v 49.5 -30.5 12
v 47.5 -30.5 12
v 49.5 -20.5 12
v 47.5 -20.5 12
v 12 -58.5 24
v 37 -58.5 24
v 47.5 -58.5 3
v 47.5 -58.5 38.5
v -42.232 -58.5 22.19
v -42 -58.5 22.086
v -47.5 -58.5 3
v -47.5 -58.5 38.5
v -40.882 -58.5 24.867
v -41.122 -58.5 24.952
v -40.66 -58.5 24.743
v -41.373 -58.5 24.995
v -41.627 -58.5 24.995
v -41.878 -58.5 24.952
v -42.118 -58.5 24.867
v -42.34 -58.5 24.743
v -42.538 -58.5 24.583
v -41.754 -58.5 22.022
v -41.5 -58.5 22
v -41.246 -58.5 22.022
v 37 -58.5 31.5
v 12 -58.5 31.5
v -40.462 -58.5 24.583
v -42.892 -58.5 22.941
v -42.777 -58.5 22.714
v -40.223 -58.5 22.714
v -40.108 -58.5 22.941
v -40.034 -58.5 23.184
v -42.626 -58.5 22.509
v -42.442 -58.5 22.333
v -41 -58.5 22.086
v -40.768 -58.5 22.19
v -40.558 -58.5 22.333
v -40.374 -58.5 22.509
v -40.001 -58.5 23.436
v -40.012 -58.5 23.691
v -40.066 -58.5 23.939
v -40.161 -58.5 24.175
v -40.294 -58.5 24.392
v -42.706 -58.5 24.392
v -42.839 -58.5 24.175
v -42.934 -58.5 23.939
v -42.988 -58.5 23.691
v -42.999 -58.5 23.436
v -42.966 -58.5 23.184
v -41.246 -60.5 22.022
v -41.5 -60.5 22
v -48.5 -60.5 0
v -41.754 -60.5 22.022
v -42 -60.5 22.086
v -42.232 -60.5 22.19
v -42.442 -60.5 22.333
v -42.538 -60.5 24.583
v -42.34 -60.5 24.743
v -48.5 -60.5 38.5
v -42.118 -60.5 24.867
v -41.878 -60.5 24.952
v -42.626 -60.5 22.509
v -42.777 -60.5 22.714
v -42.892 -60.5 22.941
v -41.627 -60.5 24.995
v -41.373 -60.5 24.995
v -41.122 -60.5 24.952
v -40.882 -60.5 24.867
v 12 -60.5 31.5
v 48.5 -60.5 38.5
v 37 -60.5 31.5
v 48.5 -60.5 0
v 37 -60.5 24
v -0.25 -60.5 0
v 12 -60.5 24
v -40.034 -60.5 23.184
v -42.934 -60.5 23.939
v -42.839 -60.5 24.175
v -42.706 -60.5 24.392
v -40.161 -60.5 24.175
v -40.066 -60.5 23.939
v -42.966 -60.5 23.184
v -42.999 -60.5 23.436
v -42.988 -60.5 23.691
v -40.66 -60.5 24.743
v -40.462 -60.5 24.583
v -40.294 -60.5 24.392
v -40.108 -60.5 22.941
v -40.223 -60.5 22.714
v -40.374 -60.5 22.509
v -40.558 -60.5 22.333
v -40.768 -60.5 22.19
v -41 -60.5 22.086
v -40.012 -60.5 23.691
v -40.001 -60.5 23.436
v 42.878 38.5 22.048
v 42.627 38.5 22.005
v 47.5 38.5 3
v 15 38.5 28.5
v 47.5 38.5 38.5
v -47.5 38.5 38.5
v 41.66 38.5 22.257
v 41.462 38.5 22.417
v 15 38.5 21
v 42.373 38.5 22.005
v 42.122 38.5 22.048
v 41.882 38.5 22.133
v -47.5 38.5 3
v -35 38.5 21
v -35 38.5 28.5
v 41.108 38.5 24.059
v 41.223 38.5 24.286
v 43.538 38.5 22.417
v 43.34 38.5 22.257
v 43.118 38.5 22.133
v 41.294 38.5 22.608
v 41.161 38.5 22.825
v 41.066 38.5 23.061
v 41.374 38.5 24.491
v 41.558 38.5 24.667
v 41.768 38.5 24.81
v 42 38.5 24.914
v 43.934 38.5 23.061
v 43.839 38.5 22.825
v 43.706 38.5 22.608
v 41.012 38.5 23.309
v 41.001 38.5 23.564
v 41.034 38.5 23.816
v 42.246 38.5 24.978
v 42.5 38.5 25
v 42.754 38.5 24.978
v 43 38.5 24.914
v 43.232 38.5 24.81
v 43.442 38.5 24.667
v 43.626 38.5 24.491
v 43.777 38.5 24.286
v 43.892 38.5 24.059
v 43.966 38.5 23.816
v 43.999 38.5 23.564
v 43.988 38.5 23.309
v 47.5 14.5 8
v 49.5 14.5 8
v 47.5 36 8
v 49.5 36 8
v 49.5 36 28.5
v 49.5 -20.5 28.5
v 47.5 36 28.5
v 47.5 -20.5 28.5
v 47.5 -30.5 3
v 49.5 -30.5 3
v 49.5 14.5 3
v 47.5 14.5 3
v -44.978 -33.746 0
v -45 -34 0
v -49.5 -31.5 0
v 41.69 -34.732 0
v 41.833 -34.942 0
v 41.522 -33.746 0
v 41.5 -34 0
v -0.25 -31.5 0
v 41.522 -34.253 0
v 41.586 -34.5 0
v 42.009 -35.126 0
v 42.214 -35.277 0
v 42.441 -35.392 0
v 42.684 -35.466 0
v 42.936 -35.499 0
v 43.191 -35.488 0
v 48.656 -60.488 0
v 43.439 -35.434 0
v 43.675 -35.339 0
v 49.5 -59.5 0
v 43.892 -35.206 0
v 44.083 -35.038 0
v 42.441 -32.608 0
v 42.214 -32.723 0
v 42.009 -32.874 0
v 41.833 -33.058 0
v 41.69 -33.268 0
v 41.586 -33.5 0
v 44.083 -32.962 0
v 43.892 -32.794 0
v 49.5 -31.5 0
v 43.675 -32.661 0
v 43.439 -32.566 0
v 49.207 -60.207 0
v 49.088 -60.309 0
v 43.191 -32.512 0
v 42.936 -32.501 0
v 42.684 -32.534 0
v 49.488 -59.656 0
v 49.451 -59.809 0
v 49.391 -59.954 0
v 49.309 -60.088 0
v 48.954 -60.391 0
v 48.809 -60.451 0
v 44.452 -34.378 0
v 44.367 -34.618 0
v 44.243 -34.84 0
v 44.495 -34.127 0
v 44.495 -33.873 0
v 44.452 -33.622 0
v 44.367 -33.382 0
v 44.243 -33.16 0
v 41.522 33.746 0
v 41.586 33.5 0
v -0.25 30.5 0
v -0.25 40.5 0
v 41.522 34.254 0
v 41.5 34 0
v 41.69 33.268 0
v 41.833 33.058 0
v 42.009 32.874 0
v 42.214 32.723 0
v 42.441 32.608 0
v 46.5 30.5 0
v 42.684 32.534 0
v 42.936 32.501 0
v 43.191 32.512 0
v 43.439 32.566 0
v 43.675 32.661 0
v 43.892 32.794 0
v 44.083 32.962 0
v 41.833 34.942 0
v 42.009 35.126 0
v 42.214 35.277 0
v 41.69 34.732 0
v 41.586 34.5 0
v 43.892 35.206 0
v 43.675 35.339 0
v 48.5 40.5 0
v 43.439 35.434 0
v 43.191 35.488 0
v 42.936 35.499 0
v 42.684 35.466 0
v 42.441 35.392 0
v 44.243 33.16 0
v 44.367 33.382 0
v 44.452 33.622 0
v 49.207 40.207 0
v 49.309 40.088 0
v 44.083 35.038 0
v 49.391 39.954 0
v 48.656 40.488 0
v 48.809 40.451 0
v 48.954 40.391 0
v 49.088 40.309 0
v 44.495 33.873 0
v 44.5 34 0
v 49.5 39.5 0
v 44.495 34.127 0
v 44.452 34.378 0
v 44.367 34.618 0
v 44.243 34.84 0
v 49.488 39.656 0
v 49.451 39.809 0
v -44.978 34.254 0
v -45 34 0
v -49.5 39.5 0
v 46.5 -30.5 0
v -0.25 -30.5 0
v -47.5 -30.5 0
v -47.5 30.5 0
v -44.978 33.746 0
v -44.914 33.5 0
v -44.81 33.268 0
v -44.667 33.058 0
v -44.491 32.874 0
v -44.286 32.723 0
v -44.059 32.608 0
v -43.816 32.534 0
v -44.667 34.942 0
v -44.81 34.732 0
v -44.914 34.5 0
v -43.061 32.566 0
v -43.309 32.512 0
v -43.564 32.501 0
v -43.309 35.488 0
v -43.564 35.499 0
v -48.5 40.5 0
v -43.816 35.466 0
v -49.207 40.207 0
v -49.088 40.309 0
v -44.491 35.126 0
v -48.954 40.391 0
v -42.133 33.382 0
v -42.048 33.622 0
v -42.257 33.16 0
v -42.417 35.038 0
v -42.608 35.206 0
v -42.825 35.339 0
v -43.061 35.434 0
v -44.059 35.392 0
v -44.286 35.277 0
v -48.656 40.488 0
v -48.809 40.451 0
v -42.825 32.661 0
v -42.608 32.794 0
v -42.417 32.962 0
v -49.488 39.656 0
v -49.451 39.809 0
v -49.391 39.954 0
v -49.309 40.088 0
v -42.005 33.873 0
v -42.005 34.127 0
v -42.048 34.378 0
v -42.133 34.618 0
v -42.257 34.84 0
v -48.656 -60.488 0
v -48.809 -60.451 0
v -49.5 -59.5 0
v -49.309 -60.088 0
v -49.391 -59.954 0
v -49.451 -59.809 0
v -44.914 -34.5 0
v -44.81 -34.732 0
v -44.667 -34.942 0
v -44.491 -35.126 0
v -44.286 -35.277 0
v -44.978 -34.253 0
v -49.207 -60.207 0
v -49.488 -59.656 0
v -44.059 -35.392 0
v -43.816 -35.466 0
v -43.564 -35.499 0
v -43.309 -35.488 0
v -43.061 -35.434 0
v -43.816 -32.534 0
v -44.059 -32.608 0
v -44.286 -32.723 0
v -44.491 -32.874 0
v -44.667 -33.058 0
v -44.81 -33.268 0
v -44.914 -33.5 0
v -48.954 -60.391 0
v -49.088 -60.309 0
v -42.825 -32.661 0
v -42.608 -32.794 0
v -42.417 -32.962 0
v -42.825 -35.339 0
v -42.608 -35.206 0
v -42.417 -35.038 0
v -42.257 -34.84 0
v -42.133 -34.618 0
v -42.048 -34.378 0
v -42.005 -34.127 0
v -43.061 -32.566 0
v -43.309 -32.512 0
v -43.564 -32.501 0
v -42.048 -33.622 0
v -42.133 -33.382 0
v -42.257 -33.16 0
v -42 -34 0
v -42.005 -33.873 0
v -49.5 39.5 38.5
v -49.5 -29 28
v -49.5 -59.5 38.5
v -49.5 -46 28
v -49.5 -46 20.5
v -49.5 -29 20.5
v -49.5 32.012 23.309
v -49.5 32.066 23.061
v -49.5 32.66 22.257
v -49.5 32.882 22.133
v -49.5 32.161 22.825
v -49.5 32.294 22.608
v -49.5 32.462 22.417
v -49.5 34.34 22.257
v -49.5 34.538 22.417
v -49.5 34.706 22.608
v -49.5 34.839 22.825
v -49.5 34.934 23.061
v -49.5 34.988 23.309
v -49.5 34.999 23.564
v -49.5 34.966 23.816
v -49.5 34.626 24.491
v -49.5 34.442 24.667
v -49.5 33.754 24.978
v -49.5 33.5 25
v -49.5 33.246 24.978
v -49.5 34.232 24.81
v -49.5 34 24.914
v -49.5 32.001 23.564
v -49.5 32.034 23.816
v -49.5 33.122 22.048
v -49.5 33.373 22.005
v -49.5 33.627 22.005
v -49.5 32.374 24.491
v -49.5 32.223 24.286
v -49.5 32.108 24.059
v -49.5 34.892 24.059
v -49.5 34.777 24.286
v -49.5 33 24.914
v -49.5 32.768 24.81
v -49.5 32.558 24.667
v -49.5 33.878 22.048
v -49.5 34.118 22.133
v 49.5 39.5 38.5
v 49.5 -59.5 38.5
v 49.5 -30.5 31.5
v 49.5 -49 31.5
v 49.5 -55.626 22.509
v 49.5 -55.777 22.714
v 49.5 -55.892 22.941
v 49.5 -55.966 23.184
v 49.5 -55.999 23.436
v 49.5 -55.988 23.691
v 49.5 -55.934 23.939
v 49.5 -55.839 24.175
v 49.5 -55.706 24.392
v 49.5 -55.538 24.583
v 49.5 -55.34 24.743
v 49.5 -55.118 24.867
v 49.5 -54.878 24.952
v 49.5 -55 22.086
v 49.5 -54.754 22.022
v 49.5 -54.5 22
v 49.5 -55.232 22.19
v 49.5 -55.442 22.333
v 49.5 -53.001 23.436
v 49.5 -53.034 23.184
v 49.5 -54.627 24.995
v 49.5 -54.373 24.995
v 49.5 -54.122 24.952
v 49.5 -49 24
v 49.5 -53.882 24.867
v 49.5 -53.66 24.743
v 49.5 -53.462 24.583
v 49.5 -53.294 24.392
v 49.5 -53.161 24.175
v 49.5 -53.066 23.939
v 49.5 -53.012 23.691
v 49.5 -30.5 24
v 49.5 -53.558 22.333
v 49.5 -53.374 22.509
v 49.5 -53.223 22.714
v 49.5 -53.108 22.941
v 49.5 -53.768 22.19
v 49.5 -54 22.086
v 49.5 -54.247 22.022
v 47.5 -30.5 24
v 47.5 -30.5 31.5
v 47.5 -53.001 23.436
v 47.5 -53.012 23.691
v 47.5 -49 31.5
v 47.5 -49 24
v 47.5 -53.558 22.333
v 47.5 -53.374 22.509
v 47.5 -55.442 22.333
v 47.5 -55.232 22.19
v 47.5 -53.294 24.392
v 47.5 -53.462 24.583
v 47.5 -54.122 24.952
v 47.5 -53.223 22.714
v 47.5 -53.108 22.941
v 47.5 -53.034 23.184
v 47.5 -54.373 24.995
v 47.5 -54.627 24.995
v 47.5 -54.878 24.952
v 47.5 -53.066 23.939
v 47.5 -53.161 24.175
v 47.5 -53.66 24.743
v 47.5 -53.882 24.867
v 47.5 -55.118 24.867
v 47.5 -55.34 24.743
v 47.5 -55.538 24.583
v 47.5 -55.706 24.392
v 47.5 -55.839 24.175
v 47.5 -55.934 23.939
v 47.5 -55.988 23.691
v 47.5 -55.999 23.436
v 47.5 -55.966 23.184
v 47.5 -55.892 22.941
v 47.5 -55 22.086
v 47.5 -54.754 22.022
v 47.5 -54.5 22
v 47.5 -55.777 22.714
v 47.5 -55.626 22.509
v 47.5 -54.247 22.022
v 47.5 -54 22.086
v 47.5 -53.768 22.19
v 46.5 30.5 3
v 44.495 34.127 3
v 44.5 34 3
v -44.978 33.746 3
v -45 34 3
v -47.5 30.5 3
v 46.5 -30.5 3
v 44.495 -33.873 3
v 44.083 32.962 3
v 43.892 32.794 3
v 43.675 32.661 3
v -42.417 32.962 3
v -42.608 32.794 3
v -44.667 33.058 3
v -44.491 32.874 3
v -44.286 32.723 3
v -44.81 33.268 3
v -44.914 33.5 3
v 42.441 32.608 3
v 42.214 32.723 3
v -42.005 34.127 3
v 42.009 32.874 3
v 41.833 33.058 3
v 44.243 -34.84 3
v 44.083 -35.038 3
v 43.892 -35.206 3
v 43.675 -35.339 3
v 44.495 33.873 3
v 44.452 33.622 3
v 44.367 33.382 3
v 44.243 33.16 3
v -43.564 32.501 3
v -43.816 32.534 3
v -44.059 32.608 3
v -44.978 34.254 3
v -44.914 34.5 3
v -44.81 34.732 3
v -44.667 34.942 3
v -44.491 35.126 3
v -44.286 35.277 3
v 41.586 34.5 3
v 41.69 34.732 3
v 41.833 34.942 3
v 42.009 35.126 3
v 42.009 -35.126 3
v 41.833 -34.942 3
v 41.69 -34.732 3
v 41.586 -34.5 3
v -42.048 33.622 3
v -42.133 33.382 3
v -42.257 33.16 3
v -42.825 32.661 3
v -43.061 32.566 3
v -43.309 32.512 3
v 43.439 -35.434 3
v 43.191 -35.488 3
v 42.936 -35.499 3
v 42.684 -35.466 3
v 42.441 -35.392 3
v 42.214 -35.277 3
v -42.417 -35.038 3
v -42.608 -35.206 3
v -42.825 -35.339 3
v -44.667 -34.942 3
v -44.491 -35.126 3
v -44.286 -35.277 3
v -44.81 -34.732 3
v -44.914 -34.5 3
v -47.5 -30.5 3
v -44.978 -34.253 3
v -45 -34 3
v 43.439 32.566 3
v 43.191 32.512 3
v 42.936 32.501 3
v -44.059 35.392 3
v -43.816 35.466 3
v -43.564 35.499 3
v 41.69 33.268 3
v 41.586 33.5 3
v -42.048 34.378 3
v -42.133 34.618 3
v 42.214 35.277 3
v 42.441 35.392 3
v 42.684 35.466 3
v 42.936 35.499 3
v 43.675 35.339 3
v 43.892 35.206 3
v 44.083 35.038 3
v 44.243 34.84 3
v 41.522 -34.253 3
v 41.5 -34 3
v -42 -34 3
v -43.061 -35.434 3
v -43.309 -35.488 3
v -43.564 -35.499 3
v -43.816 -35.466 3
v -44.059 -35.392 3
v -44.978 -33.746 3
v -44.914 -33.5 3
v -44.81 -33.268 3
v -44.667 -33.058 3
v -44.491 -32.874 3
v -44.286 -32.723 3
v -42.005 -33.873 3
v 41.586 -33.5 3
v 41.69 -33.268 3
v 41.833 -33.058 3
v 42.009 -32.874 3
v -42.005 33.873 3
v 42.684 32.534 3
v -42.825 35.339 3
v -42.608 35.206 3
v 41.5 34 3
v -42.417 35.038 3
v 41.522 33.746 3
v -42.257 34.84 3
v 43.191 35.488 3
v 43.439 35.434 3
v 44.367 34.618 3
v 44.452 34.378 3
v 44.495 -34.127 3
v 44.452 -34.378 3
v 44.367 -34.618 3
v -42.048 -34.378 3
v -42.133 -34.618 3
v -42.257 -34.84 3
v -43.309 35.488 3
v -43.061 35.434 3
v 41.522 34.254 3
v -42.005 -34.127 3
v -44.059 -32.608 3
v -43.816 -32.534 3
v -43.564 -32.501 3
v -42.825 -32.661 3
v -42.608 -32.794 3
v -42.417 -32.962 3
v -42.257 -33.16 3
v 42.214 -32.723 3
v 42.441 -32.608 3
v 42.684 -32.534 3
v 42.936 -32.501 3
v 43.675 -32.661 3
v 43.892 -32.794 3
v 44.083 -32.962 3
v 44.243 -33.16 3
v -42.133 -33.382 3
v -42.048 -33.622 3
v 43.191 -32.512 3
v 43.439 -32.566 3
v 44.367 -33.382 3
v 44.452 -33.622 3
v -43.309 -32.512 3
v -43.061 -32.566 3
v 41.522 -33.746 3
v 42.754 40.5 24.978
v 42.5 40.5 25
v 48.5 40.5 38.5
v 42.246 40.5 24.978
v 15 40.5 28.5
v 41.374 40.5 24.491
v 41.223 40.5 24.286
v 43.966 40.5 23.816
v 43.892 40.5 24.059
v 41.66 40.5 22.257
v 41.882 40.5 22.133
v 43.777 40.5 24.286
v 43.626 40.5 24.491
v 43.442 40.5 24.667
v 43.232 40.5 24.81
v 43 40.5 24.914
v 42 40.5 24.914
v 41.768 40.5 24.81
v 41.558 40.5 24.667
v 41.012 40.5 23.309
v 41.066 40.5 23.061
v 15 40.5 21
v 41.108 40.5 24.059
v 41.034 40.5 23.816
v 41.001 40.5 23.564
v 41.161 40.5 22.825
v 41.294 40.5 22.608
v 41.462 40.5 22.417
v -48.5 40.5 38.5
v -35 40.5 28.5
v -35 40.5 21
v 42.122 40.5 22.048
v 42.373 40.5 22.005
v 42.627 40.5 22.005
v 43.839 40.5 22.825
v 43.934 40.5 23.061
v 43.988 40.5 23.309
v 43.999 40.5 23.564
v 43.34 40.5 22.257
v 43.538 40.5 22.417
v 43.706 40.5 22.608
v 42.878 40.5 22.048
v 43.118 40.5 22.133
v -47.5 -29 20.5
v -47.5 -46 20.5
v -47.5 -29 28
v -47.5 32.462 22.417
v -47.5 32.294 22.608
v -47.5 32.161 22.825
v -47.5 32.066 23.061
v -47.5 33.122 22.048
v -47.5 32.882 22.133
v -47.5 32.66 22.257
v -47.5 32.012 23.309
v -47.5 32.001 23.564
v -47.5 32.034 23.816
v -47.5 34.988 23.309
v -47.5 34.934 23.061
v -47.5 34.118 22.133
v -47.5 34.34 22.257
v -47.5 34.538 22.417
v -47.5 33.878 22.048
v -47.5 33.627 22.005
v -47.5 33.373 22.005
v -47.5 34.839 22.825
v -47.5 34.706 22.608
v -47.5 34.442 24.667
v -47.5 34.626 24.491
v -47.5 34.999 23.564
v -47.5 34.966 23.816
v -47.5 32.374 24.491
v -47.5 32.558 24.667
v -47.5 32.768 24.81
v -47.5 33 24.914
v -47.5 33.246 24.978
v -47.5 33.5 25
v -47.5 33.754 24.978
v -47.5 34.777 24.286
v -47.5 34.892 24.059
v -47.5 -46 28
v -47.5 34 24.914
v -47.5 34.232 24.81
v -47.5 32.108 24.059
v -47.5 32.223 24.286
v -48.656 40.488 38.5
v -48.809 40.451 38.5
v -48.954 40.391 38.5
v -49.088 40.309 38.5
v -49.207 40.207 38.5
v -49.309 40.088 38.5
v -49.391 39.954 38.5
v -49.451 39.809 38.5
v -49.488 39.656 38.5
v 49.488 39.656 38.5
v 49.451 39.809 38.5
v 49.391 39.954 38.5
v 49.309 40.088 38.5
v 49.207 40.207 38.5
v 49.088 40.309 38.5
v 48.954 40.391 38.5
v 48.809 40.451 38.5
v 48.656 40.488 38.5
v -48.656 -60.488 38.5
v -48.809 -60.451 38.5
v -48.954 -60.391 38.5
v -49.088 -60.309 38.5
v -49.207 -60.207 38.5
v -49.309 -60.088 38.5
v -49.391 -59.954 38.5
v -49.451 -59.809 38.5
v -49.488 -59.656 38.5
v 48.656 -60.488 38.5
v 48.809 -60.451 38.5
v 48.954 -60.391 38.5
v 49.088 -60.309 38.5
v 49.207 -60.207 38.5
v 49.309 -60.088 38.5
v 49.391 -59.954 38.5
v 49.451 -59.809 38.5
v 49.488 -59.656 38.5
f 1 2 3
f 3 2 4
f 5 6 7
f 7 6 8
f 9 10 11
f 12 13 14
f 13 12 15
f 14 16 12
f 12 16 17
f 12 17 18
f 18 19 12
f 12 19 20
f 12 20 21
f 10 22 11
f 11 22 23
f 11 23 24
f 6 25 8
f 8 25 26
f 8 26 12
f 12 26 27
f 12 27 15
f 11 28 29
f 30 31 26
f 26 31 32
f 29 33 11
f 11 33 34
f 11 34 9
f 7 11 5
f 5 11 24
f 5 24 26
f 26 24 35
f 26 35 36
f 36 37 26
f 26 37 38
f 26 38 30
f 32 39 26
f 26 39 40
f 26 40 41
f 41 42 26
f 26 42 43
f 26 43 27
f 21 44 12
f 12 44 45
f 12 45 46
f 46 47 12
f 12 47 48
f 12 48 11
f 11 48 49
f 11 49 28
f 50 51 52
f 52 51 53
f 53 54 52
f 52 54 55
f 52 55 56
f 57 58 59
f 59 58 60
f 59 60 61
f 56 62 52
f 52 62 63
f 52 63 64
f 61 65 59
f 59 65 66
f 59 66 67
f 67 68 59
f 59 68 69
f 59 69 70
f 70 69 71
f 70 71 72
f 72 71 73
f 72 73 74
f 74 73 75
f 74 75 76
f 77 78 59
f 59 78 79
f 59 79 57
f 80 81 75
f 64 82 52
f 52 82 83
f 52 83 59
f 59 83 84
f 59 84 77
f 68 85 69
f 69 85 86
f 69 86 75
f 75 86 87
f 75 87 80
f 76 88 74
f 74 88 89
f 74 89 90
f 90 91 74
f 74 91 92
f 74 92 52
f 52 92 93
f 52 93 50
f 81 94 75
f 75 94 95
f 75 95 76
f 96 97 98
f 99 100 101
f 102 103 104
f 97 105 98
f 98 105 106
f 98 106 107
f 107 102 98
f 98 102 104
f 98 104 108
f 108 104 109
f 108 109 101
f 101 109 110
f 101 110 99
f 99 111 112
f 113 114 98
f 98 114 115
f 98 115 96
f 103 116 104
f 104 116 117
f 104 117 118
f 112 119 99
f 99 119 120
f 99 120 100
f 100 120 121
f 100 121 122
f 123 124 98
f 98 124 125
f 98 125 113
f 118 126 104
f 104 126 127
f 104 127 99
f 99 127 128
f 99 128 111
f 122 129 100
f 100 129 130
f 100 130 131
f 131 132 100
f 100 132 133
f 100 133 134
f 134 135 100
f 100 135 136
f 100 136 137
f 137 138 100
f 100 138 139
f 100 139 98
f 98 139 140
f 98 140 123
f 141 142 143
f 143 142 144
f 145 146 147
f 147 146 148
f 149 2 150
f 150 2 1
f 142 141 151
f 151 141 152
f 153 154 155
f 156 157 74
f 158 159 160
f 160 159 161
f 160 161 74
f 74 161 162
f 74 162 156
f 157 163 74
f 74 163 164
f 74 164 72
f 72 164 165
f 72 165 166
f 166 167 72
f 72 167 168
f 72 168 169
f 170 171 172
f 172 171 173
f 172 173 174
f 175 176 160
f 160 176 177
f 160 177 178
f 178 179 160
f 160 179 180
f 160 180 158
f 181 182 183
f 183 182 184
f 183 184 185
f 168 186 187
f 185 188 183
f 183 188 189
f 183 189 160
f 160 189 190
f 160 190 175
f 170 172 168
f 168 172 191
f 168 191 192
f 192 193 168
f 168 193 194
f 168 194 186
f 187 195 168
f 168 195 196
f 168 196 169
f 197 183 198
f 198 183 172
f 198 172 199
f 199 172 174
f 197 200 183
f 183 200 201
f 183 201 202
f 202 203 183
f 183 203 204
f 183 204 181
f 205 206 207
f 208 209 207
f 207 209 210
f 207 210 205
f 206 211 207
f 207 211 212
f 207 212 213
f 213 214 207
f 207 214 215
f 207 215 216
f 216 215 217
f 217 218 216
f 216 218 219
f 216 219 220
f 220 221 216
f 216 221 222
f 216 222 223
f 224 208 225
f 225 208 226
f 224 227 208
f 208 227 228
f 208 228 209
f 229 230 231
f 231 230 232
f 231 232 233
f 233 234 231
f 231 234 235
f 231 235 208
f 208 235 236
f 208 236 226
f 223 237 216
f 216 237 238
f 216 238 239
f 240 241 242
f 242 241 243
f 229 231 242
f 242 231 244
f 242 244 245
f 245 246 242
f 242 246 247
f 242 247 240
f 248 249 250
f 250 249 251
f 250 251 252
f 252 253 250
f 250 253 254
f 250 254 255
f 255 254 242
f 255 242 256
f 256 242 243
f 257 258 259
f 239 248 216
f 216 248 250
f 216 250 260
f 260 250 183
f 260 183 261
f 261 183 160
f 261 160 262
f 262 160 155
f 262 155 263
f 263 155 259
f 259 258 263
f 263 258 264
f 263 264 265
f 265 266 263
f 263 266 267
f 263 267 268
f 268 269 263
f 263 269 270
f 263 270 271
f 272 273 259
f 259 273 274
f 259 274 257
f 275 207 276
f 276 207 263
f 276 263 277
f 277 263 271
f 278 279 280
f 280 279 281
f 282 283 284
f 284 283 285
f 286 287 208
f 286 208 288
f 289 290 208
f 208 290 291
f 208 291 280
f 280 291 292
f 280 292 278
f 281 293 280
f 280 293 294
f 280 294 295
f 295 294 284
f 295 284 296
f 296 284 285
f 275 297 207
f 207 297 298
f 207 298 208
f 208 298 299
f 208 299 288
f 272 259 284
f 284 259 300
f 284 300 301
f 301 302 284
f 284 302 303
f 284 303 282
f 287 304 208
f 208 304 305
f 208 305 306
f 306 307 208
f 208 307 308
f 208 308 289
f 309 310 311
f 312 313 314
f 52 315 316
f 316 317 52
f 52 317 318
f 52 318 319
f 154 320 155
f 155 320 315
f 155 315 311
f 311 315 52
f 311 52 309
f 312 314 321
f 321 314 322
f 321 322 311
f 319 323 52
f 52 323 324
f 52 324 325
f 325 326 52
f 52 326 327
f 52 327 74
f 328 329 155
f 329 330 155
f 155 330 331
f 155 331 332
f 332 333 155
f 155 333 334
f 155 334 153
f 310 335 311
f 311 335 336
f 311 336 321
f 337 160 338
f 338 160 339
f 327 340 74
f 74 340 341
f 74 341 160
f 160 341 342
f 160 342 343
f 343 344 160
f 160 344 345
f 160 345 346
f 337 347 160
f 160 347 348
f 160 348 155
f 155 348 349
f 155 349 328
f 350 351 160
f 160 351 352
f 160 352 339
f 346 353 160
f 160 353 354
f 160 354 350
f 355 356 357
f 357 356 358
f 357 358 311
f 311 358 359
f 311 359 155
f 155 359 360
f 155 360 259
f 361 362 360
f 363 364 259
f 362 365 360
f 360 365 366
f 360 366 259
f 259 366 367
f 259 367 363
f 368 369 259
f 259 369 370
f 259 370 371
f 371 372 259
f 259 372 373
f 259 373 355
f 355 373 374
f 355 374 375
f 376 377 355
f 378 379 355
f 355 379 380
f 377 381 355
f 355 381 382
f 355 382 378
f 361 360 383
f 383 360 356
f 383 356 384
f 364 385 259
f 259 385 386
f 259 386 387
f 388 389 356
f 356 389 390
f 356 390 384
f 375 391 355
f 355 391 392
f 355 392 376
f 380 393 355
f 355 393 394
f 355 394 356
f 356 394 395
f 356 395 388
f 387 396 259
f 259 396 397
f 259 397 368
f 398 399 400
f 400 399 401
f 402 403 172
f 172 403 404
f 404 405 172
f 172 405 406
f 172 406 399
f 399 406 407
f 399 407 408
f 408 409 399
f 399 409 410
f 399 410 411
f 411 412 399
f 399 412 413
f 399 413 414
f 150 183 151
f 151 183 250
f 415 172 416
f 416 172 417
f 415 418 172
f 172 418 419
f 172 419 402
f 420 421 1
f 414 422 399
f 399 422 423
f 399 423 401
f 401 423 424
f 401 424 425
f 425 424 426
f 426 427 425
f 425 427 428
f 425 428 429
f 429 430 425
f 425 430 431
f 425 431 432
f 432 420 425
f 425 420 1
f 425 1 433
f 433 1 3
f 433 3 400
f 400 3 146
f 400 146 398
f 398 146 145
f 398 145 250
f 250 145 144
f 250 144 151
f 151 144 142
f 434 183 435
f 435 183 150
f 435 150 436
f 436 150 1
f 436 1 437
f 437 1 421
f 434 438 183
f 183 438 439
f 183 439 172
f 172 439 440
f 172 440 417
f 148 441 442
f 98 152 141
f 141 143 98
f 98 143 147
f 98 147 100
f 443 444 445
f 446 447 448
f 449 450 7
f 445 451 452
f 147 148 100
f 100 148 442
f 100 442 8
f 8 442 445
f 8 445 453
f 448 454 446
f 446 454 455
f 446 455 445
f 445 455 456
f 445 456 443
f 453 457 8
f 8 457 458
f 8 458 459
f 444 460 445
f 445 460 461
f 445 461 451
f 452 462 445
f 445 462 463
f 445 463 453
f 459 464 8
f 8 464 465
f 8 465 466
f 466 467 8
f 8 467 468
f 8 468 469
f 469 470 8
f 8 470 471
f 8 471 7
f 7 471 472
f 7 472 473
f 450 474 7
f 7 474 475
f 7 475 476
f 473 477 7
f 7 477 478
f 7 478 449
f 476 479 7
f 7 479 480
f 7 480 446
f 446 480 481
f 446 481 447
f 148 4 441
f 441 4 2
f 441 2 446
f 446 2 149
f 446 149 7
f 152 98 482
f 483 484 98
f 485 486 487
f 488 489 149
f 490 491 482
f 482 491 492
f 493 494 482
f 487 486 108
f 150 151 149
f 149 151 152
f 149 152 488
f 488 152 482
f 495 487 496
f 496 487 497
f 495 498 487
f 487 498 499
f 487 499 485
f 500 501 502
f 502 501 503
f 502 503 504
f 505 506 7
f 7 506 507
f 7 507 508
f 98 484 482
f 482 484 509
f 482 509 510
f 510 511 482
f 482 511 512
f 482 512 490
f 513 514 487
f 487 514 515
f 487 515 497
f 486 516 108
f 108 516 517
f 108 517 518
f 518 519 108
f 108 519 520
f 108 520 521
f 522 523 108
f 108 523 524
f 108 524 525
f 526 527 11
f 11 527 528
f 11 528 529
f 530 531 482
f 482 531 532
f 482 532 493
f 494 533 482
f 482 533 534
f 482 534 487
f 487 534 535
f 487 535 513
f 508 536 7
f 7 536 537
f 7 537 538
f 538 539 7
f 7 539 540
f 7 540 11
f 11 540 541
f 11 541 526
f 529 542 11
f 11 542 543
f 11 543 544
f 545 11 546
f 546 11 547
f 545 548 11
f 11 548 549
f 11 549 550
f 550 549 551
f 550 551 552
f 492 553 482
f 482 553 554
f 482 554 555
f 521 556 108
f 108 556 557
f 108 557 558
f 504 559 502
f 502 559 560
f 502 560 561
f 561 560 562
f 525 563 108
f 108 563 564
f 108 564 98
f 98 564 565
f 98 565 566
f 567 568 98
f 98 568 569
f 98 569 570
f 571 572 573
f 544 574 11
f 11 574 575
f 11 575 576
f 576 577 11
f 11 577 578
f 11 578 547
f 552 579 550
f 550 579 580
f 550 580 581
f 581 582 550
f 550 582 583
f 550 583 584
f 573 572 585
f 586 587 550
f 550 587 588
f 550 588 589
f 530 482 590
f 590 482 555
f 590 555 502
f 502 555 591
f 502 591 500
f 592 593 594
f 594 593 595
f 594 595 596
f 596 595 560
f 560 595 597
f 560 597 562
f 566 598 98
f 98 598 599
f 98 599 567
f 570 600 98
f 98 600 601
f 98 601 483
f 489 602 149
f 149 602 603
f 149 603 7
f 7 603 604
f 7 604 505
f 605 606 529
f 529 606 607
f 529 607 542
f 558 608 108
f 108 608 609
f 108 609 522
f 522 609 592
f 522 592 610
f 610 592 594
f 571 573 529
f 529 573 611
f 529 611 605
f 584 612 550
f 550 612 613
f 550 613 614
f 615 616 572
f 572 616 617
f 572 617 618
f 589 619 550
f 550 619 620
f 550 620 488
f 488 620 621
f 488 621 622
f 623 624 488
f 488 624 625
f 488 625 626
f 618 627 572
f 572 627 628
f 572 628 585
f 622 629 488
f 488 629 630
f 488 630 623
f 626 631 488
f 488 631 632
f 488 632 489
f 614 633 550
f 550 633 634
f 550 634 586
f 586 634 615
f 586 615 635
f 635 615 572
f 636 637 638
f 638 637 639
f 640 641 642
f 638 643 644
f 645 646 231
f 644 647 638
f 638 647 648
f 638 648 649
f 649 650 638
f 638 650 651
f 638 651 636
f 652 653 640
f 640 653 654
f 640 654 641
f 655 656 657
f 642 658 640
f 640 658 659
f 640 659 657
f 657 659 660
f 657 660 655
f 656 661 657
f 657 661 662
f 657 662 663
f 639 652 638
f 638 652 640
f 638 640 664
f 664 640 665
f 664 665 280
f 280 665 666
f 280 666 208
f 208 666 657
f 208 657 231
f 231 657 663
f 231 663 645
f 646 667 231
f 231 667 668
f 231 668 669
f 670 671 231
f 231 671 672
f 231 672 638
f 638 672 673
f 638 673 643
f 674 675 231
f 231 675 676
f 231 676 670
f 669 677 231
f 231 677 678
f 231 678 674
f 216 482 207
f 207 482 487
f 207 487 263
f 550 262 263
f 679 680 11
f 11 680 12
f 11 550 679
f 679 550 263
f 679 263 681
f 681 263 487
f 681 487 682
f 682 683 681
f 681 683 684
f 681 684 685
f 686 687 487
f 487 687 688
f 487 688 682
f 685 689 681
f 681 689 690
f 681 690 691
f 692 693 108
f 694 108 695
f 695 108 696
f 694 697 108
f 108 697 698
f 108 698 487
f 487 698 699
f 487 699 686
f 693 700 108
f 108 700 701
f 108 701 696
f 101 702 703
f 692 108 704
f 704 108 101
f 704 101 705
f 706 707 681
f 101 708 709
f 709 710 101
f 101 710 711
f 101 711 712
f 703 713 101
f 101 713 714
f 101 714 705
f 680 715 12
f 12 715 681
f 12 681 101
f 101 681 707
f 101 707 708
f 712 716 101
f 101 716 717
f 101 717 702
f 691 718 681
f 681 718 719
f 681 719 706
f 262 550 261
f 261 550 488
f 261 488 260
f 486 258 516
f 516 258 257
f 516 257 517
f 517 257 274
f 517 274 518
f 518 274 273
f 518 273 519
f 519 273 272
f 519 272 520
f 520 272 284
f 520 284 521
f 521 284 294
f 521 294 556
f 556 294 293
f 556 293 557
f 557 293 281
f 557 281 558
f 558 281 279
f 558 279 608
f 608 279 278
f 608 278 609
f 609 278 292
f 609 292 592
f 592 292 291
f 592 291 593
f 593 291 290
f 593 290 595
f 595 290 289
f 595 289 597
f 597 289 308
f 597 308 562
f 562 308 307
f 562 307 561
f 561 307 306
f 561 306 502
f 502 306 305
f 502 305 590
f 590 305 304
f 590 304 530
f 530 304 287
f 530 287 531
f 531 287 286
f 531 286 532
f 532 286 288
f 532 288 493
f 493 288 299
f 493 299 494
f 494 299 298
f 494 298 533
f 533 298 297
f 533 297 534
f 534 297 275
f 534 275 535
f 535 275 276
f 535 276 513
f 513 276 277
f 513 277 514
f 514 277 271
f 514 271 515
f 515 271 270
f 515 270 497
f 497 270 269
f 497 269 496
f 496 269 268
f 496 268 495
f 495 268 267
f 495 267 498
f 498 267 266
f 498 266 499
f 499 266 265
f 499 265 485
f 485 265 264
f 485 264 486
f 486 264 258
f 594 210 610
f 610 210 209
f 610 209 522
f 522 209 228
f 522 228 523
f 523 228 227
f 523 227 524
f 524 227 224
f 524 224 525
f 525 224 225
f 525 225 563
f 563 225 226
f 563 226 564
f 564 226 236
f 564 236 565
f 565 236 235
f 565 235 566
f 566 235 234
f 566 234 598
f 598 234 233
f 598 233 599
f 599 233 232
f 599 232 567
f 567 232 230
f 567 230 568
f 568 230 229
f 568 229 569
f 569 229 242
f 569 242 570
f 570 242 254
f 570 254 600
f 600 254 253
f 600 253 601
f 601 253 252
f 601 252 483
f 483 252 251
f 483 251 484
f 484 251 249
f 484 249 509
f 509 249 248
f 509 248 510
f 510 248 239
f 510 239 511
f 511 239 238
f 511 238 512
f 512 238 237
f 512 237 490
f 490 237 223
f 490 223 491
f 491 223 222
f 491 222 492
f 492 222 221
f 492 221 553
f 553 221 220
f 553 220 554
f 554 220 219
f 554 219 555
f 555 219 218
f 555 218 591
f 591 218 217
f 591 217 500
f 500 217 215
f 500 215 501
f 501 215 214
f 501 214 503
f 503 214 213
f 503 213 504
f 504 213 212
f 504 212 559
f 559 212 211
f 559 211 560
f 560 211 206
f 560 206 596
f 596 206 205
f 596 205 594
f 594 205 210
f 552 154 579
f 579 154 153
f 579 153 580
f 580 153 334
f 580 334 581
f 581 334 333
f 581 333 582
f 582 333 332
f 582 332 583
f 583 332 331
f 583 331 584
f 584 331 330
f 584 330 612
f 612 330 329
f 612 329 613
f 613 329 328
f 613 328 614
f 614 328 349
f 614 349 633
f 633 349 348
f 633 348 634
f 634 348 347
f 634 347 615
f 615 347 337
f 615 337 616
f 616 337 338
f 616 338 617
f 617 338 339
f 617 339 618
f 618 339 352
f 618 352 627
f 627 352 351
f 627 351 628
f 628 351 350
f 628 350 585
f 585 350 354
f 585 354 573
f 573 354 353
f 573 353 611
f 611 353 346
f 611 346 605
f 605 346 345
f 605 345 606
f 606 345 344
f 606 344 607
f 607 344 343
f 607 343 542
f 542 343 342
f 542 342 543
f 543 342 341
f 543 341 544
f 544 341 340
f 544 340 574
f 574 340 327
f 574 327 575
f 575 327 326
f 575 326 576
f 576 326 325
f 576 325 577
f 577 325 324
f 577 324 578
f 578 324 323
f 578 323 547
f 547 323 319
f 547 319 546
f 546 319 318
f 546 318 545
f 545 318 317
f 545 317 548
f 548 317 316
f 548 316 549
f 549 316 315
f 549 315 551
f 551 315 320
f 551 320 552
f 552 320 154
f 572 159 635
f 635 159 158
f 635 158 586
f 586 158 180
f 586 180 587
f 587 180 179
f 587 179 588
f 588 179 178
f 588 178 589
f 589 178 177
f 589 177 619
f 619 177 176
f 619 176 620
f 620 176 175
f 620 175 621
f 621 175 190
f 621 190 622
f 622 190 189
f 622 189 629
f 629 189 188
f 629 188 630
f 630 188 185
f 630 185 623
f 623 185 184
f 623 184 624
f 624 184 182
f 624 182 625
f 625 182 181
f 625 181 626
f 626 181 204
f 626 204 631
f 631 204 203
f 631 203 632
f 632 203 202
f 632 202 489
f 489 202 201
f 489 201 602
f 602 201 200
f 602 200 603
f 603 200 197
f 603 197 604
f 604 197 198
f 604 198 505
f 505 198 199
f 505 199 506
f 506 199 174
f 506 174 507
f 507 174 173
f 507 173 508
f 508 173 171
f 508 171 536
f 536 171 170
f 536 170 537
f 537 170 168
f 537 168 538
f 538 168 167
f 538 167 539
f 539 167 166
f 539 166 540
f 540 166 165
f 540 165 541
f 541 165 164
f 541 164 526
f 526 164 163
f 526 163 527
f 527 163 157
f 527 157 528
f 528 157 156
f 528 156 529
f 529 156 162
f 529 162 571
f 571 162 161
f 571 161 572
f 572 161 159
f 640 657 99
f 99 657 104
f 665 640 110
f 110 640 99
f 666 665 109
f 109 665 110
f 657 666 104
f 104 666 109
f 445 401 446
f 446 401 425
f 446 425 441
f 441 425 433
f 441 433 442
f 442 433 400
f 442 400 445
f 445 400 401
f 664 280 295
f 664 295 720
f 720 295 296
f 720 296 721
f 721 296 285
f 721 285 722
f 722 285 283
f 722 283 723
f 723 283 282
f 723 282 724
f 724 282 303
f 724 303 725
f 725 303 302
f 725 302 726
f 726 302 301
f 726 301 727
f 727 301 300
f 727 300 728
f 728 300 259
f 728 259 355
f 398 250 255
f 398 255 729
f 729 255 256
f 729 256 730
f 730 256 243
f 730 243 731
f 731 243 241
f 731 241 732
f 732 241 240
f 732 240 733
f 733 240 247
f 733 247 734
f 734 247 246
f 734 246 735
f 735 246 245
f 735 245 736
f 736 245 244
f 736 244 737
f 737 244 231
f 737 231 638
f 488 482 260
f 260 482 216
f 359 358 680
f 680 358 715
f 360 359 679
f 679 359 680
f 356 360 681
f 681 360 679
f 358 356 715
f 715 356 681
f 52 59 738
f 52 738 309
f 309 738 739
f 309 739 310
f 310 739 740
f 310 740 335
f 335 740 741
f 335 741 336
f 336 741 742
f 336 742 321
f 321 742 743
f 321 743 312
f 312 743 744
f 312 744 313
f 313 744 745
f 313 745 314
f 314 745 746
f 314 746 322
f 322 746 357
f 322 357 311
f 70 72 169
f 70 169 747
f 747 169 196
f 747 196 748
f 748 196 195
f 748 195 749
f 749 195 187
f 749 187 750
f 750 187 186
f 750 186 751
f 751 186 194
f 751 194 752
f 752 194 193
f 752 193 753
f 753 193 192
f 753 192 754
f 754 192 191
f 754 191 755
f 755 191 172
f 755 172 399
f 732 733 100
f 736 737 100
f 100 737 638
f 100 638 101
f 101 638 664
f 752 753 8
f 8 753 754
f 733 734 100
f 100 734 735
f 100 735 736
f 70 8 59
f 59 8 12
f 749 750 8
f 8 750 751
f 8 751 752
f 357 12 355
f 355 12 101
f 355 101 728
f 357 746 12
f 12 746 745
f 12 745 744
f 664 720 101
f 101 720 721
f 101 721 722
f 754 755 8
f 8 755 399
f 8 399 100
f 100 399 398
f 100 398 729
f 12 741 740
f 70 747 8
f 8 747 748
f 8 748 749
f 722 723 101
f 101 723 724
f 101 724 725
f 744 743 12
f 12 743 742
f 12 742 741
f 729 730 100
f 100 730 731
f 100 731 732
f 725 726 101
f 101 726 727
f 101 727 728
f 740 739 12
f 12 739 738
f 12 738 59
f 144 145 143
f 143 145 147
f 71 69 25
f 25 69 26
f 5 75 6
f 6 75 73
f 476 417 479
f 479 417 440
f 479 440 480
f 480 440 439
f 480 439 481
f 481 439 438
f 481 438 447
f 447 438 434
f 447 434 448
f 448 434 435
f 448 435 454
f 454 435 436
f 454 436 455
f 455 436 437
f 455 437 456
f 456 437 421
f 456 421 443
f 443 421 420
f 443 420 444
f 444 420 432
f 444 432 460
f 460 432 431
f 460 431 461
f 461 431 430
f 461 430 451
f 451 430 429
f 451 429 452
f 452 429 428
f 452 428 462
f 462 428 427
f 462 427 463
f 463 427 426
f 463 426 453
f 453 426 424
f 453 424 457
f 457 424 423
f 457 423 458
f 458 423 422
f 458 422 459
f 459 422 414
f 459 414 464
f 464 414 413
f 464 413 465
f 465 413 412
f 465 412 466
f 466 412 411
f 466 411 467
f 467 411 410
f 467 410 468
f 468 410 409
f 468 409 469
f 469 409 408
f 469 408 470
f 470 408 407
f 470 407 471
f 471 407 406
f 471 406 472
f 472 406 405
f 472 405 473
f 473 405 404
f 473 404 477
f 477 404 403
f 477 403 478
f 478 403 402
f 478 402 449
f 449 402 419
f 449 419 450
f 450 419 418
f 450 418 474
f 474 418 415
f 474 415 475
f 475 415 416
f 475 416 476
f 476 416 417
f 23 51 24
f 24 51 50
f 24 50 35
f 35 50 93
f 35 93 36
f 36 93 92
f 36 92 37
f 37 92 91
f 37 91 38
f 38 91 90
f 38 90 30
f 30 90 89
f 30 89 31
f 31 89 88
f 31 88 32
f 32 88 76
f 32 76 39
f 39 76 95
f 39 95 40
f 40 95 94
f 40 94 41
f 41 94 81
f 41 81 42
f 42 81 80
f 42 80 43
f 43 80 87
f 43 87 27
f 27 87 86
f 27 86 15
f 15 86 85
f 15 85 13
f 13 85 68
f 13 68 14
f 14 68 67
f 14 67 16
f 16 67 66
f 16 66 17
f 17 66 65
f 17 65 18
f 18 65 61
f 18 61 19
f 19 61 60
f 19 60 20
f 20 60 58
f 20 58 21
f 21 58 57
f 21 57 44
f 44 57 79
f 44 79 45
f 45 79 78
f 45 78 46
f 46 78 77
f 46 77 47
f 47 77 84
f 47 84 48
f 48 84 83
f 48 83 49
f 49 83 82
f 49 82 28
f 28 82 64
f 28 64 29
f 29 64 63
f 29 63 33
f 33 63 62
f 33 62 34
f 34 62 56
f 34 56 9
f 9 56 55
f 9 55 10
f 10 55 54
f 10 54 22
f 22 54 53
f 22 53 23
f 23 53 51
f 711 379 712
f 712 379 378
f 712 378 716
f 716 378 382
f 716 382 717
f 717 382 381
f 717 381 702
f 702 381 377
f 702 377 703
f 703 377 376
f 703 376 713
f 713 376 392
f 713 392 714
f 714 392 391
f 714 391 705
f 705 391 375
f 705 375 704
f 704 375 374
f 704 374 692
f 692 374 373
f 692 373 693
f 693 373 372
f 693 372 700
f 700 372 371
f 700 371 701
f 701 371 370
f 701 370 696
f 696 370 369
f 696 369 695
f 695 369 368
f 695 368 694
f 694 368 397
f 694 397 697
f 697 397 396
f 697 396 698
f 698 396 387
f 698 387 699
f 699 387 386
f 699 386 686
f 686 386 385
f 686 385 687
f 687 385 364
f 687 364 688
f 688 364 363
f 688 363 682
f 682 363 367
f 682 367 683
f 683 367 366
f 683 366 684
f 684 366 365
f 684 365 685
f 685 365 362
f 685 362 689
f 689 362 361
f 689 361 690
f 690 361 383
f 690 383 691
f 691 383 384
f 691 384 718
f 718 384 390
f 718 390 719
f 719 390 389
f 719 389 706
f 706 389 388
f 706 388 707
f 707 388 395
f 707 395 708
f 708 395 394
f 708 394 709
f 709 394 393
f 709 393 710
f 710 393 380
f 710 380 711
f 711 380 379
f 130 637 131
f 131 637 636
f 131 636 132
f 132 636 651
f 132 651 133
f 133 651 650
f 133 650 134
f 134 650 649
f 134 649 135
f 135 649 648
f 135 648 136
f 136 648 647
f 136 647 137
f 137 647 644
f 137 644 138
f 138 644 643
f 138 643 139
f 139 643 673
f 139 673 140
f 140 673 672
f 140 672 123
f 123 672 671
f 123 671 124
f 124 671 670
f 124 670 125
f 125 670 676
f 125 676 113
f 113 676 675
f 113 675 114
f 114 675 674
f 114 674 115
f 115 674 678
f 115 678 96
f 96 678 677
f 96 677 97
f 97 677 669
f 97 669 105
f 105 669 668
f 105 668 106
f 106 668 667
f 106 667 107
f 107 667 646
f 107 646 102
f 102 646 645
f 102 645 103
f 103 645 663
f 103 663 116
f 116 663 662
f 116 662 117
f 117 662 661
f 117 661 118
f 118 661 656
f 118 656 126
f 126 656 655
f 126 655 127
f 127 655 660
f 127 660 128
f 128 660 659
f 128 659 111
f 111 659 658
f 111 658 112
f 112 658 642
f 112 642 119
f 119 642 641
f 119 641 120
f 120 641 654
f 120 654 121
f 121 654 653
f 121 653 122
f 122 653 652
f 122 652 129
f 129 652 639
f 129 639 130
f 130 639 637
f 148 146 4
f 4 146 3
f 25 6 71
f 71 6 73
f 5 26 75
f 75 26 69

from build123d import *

# Parameters (mm, degrees)
SKETCH_1_W           = 99
SKETCH_1_H           = 104
SKETCH_1_R           = 1.5
SKETCH_1_W_2         = 95
SKETCH_1_H_2         = 61
EXTRUDE_3_DEPTH      = 3
SKETCH_3_W           = 99
SKETCH_3_H           = 104
SKETCH_3_W_2         = 95
SKETCH_3_H_2         = 100
EXTRUDE_4_DEPTH      = 33
CUT_EXTRUDE_2_DEPTH  = 30
SKETCH_5_W           = 50
SKETCH_5_H           = 7.5
CUT_EXTRUDE_3_DEPTH  = 30
SKETCH_6_W           = 28
SKETCH_6_H           = 55
CUT_EXTRUDE_4_DEPTH  = 30
SKETCH_7_W           = 7.5
SKETCH_7_H           = 18.5
CUT_EXTRUDE_5_DEPTH  = 30
SKETCH_8_W           = 25
SKETCH_8_H           = 7.5
CUT_EXTRUDE_6_DEPTH  = 30
FILLET_1_R           = 1
SKETCH_9_W           = 2
SKETCH_9_H           = 55
EXTRUDE_5_DEPTH      = 7.5
SKETCH_14_W          = 95
SKETCH_14_H          = 33
SKETCH_14_W_2        = 25
SKETCH_14_H_2        = 7.5
EXTRUDE_6_DEPTH      = 3
SKETCH_15_W          = 178.19226754
SKETCH_15_H          = 134.394802541
CUT_EXTRUDE_8_DEPTH  = 3
EXTRUDE_7_DEPTH      = 3
SKETCH_17_W          = 7.5
SKETCH_17_H          = 17
CUT_EXTRUDE_9_DEPTH  = 3
FILLET_3_R           = 1
SKETCH_19_W          = 95
SKETCH_19_H          = 97
EXTRUDE_8_DEPTH      = 2.5
SKETCH_20_W          = 2
SKETCH_20_H          = 20.5
EXTRUDE_9_DEPTH      = 2.5
CUT_EXTRUDE_10_DEPTH = 2
EXTRUDE_11_DEPTH     = 2
SKETCH_24_R          = 1.5
CUT_EXTRUDE_11_DEPTH = 2
SKETCH_25_R          = 1.5
CUT_EXTRUDE_12_DEPTH = 2
SKETCH_26_R          = 1.5
CUT_EXTRUDE_13_DEPTH = 2
SKETCH_27_R          = 1.5
CUT_EXTRUDE_14_DEPTH = 2
SKETCH_28_W          = 2
SKETCH_28_H          = 16.5
CUT_EXTRUDE_15_DEPTH = 4
SKETCH_29_W          = 6
SKETCH_29_H          = 7.5
EXTRUDE_12_DEPTH     = 2
SKETCH_30_W          = 6
SKETCH_30_H          = 7.5
CUT_EXTRUDE_16_DEPTH = 2


with BuildPart() as part:
    # 草图1 → 凸台-拉伸3 (new body)
    with BuildSketch(Plane.XY):
        with Locations((0, -11.5)):
            Rectangle(SKETCH_1_W, SKETCH_1_H)
        with Locations((43, 34)):
            Circle(SKETCH_1_R, mode=Mode.SUBTRACT)
        with Locations(Location((-43.5, 34, 0), (0, 0, 180))):
            Circle(SKETCH_1_R, mode=Mode.SUBTRACT)
        with Locations((-43.5, -34)):
            Circle(SKETCH_1_R, mode=Mode.SUBTRACT)
        with Locations(Location((43, -34, 0), (0, 0, 180))):
            Circle(SKETCH_1_R, mode=Mode.SUBTRACT)
        Rectangle(SKETCH_1_W_2, SKETCH_1_H_2, mode=Mode.SUBTRACT)
    extrude(amount=EXTRUDE_3_DEPTH)

    # 草图3 → 凸台-拉伸4 (add)
    with BuildSketch(Plane.XY.offset(3)):
        with Locations((0, -11.5)):
            Rectangle(SKETCH_3_W, SKETCH_3_H)
        with Locations((0, -11.5)):
            Rectangle(SKETCH_3_W_2, SKETCH_3_H_2, mode=Mode.SUBTRACT)
    extrude(amount=EXTRUDE_4_DEPTH)

    # 草图4 → 切除-拉伸2 (cut)
    with BuildSketch(Plane.ZY.offset(-47.5)):
        Polygon((12, 14.5), (12, -30.5), (3, -30.5), (0, -30.5), (0, 14.5), align=None)
    extrude(amount=-CUT_EXTRUDE_2_DEPTH, mode=Mode.SUBTRACT)

    # 草图5 → 切除-拉伸3 (cut)
    with BuildSketch(Plane(origin=(0, 40.5, 0), x_dir=(1, 0, 0), z_dir=(0, 1, 0))):
        with Locations((-10, -24.75)):
            Rectangle(SKETCH_5_W, SKETCH_5_H)
    extrude(amount=-CUT_EXTRUDE_3_DEPTH, mode=Mode.SUBTRACT)

    # 草图6 → 切除-拉伸4 (cut)
    with BuildSketch(Plane.ZY.offset(-47.5)):
        with Locations((22, 11)):
            Rectangle(SKETCH_6_W, SKETCH_6_H)
    extrude(amount=-CUT_EXTRUDE_4_DEPTH, mode=Mode.SUBTRACT)

    # 草图7 → 切除-拉伸5 (cut)
    with BuildSketch(Plane.ZY.offset(-47.5)):
        with Locations((27.75, -39.75)):
            Rectangle(SKETCH_7_W, SKETCH_7_H)
    extrude(amount=-CUT_EXTRUDE_5_DEPTH, mode=Mode.SUBTRACT)

    # 草图8 → 切除-拉伸6 (cut)
    with BuildSketch(Plane(origin=(0, -61.5, 0), x_dir=(1, 0, 0), z_dir=(0, 1, 0))):
        with Locations((27.5, -24.75)):
            Rectangle(SKETCH_8_W, SKETCH_8_H)
    extrude(amount=-CUT_EXTRUDE_6_DEPTH, mode=Mode.SUBTRACT)

    # 圆角1
    fillet_1_edges = [part.edges().sort_by_distance(p)[0] for p in [
        (-49.5, 40.5, 18),
        (49.5, 40.5, 18),
        (49.5, -63.5, 18),
        (-49.5, -63.5, 18),
    ]]
    fillet(fillet_1_edges, radius=FILLET_1_R)

    # 草图9 → 凸台-拉伸5 (add)
    with BuildSketch(Plane.XY.offset(36)):
        with Locations((48.5, 11)):
            Rectangle(SKETCH_9_W, SKETCH_9_H)
    extrude(amount=-EXTRUDE_5_DEPTH)

    # 草图14 → 凸台-拉伸6 (add)
    with BuildSketch(Plane(origin=(0, -61.5, 0), x_dir=(1, 0, 0), z_dir=(0, 1, 0))):
        with Locations((0, -19.5)):
            Rectangle(SKETCH_14_W, SKETCH_14_H)
        with Locations((27.5, -24.75)):
            Rectangle(SKETCH_14_W_2, SKETCH_14_H_2, mode=Mode.SUBTRACT)
    extrude(amount=EXTRUDE_6_DEPTH)

    # 草图15 → 切除-拉伸8 (cut)
    with BuildSketch(Plane.XZ.offset(63.5)):
        with Locations((3.050514682, 15.901855456)):
            Rectangle(SKETCH_15_W, SKETCH_15_H)
    extrude(amount=-CUT_EXTRUDE_8_DEPTH, mode=Mode.SUBTRACT)

    # 草图16 → 凸台-拉伸7 (add)
    with BuildSketch(Plane(origin=(0, 0, 0), x_dir=(-1, 0, 0), z_dir=(0, 0, -1))):
        Polygon((-47.5, 30.5), (-46.5, 30.5), (-46.5, -30.5), (-49.5, -30.5), (-49.5, 14.5), (-47.5, 14.5), align=None)
    extrude(amount=-EXTRUDE_7_DEPTH)

    # 草图17 → 切除-拉伸9 (cut)
    with BuildSketch(Plane.ZY.offset(49.5)):
        with Locations((24.25, -37.5)):
            Rectangle(SKETCH_17_W, SKETCH_17_H)
    extrude(amount=-CUT_EXTRUDE_9_DEPTH, mode=Mode.SUBTRACT)

    # 圆角3
    fillet_3_edges = [part.edges().sort_by_distance(p)[0] for p in [
        (49.5, -60.5, 18),
        (-49.5, -60.5, 18),
    ]]
    fillet(fillet_3_edges, radius=FILLET_3_R)

    # 草图19 → 凸台-拉伸8 (add)
    with BuildSketch(Plane.XY.offset(36)):
        with BuildLine():
            Line((-49.5, 39.5), (-49.5, -59.5))
            ThreePointArc((-49.5, -59.5), (-49.207106781, -60.207106781), (-48.5, -60.5))
            Line((-48.5, -60.5), (48.5, -60.5))
            ThreePointArc((48.5, -60.5), (49.207106781, -60.207106781), (49.5, -59.5))
            Line((49.5, -59.5), (49.5, 39.5))
            ThreePointArc((49.5, 39.5), (49.207106781, 40.207106781), (48.5, 40.5))
            Line((48.5, 40.5), (-48.5, 40.5))
            ThreePointArc((-48.5, 40.5), (-49.207106781, 40.207106781), (-49.5, 39.5))
        make_face()
        with Locations((0, -10)):
            Rectangle(SKETCH_19_W, SKETCH_19_H, mode=Mode.SUBTRACT)
    extrude(amount=EXTRUDE_8_DEPTH)

    # 草图20 → 凸台-拉伸9 (add)
    with BuildSketch(Plane.XZ.offset(-38.5)):
        with Locations((48.5, 18.25)):
            Rectangle(SKETCH_20_W, SKETCH_20_H)
    extrude(amount=EXTRUDE_9_DEPTH)

    # 草图21 → 切除-拉伸10 (cut)
    with BuildSketch(Plane.XZ.offset(60.5)):
        Polygon((43, 24), (43, 31.5), (18, 31.5), (18, 28.5), (40, 28.5), (40, 24), align=None)
    extrude(amount=-CUT_EXTRUDE_10_DEPTH, mode=Mode.SUBTRACT)

    # 草图23 → 凸台-拉伸11 (add)
    with BuildSketch(Plane.XZ.offset(60.5)):
        Polygon((15, 28.5), (18, 28.5), (18, 24), (40, 24), (40, 21), (15, 21), align=None)
    extrude(amount=-EXTRUDE_11_DEPTH)

    # 草图24 → 切除-拉伸11 (cut)
    with BuildSketch(Plane(origin=(49.5, 0, 0), x_dir=(0, 0, -1), z_dir=(1, 0, 0))):
        with Locations((-23.5, -54.5)):
            Circle(SKETCH_24_R)
    extrude(amount=-CUT_EXTRUDE_11_DEPTH, mode=Mode.SUBTRACT)

    # 草图25 → 切除-拉伸12 (cut)
    with BuildSketch(Plane.XZ.offset(60.5)):
        with Locations(Location((-41.5, 23.5, 0), (0, 0, 270))):
            Circle(SKETCH_25_R)
    extrude(amount=-CUT_EXTRUDE_12_DEPTH, mode=Mode.SUBTRACT)

    # 草图26 → 切除-拉伸13 (cut)
    with BuildSketch(Plane.ZY.offset(49.5)):
        with Locations((23.5, 33.5)):
            Circle(SKETCH_26_R)
    extrude(amount=-CUT_EXTRUDE_13_DEPTH, mode=Mode.SUBTRACT)

    # 草图27 → 切除-拉伸14 (cut)
    with BuildSketch(Plane(origin=(0, 40.5, 0), x_dir=(1, 0, 0), z_dir=(0, 1, 0))):
        with Locations(Location((42.5, -23.5, 0), (0, 0, 270))):
            Circle(SKETCH_27_R)
    extrude(amount=-CUT_EXTRUDE_14_DEPTH, mode=Mode.SUBTRACT)

    # 草图28 → 切除-拉伸15 (cut)
    with BuildSketch(Plane(origin=(0, -16.5, 0), x_dir=(1, 0, 0), z_dir=(0, 1, 0))):
        with Locations((48.5, -20.25)):
            Rectangle(SKETCH_28_W, SKETCH_28_H)
    extrude(amount=-CUT_EXTRUDE_15_DEPTH, mode=Mode.SUBTRACT)

    # 草图29 → 凸台-拉伸12 (add)
    with BuildSketch(Plane.XZ.offset(60.5)):
        with Locations((40, 27.75)):
            Rectangle(SKETCH_29_W, SKETCH_29_H)
    extrude(amount=-EXTRUDE_12_DEPTH)

    # 草图30 → 切除-拉伸16 (cut)
    with BuildSketch(Plane.XZ.offset(60.5)):
        with Locations((15, 27.75)):
            Rectangle(SKETCH_30_W, SKETCH_30_H)
    extrude(amount=-CUT_EXTRUDE_16_DEPTH, mode=Mode.SUBTRACT)


solid = part.part
